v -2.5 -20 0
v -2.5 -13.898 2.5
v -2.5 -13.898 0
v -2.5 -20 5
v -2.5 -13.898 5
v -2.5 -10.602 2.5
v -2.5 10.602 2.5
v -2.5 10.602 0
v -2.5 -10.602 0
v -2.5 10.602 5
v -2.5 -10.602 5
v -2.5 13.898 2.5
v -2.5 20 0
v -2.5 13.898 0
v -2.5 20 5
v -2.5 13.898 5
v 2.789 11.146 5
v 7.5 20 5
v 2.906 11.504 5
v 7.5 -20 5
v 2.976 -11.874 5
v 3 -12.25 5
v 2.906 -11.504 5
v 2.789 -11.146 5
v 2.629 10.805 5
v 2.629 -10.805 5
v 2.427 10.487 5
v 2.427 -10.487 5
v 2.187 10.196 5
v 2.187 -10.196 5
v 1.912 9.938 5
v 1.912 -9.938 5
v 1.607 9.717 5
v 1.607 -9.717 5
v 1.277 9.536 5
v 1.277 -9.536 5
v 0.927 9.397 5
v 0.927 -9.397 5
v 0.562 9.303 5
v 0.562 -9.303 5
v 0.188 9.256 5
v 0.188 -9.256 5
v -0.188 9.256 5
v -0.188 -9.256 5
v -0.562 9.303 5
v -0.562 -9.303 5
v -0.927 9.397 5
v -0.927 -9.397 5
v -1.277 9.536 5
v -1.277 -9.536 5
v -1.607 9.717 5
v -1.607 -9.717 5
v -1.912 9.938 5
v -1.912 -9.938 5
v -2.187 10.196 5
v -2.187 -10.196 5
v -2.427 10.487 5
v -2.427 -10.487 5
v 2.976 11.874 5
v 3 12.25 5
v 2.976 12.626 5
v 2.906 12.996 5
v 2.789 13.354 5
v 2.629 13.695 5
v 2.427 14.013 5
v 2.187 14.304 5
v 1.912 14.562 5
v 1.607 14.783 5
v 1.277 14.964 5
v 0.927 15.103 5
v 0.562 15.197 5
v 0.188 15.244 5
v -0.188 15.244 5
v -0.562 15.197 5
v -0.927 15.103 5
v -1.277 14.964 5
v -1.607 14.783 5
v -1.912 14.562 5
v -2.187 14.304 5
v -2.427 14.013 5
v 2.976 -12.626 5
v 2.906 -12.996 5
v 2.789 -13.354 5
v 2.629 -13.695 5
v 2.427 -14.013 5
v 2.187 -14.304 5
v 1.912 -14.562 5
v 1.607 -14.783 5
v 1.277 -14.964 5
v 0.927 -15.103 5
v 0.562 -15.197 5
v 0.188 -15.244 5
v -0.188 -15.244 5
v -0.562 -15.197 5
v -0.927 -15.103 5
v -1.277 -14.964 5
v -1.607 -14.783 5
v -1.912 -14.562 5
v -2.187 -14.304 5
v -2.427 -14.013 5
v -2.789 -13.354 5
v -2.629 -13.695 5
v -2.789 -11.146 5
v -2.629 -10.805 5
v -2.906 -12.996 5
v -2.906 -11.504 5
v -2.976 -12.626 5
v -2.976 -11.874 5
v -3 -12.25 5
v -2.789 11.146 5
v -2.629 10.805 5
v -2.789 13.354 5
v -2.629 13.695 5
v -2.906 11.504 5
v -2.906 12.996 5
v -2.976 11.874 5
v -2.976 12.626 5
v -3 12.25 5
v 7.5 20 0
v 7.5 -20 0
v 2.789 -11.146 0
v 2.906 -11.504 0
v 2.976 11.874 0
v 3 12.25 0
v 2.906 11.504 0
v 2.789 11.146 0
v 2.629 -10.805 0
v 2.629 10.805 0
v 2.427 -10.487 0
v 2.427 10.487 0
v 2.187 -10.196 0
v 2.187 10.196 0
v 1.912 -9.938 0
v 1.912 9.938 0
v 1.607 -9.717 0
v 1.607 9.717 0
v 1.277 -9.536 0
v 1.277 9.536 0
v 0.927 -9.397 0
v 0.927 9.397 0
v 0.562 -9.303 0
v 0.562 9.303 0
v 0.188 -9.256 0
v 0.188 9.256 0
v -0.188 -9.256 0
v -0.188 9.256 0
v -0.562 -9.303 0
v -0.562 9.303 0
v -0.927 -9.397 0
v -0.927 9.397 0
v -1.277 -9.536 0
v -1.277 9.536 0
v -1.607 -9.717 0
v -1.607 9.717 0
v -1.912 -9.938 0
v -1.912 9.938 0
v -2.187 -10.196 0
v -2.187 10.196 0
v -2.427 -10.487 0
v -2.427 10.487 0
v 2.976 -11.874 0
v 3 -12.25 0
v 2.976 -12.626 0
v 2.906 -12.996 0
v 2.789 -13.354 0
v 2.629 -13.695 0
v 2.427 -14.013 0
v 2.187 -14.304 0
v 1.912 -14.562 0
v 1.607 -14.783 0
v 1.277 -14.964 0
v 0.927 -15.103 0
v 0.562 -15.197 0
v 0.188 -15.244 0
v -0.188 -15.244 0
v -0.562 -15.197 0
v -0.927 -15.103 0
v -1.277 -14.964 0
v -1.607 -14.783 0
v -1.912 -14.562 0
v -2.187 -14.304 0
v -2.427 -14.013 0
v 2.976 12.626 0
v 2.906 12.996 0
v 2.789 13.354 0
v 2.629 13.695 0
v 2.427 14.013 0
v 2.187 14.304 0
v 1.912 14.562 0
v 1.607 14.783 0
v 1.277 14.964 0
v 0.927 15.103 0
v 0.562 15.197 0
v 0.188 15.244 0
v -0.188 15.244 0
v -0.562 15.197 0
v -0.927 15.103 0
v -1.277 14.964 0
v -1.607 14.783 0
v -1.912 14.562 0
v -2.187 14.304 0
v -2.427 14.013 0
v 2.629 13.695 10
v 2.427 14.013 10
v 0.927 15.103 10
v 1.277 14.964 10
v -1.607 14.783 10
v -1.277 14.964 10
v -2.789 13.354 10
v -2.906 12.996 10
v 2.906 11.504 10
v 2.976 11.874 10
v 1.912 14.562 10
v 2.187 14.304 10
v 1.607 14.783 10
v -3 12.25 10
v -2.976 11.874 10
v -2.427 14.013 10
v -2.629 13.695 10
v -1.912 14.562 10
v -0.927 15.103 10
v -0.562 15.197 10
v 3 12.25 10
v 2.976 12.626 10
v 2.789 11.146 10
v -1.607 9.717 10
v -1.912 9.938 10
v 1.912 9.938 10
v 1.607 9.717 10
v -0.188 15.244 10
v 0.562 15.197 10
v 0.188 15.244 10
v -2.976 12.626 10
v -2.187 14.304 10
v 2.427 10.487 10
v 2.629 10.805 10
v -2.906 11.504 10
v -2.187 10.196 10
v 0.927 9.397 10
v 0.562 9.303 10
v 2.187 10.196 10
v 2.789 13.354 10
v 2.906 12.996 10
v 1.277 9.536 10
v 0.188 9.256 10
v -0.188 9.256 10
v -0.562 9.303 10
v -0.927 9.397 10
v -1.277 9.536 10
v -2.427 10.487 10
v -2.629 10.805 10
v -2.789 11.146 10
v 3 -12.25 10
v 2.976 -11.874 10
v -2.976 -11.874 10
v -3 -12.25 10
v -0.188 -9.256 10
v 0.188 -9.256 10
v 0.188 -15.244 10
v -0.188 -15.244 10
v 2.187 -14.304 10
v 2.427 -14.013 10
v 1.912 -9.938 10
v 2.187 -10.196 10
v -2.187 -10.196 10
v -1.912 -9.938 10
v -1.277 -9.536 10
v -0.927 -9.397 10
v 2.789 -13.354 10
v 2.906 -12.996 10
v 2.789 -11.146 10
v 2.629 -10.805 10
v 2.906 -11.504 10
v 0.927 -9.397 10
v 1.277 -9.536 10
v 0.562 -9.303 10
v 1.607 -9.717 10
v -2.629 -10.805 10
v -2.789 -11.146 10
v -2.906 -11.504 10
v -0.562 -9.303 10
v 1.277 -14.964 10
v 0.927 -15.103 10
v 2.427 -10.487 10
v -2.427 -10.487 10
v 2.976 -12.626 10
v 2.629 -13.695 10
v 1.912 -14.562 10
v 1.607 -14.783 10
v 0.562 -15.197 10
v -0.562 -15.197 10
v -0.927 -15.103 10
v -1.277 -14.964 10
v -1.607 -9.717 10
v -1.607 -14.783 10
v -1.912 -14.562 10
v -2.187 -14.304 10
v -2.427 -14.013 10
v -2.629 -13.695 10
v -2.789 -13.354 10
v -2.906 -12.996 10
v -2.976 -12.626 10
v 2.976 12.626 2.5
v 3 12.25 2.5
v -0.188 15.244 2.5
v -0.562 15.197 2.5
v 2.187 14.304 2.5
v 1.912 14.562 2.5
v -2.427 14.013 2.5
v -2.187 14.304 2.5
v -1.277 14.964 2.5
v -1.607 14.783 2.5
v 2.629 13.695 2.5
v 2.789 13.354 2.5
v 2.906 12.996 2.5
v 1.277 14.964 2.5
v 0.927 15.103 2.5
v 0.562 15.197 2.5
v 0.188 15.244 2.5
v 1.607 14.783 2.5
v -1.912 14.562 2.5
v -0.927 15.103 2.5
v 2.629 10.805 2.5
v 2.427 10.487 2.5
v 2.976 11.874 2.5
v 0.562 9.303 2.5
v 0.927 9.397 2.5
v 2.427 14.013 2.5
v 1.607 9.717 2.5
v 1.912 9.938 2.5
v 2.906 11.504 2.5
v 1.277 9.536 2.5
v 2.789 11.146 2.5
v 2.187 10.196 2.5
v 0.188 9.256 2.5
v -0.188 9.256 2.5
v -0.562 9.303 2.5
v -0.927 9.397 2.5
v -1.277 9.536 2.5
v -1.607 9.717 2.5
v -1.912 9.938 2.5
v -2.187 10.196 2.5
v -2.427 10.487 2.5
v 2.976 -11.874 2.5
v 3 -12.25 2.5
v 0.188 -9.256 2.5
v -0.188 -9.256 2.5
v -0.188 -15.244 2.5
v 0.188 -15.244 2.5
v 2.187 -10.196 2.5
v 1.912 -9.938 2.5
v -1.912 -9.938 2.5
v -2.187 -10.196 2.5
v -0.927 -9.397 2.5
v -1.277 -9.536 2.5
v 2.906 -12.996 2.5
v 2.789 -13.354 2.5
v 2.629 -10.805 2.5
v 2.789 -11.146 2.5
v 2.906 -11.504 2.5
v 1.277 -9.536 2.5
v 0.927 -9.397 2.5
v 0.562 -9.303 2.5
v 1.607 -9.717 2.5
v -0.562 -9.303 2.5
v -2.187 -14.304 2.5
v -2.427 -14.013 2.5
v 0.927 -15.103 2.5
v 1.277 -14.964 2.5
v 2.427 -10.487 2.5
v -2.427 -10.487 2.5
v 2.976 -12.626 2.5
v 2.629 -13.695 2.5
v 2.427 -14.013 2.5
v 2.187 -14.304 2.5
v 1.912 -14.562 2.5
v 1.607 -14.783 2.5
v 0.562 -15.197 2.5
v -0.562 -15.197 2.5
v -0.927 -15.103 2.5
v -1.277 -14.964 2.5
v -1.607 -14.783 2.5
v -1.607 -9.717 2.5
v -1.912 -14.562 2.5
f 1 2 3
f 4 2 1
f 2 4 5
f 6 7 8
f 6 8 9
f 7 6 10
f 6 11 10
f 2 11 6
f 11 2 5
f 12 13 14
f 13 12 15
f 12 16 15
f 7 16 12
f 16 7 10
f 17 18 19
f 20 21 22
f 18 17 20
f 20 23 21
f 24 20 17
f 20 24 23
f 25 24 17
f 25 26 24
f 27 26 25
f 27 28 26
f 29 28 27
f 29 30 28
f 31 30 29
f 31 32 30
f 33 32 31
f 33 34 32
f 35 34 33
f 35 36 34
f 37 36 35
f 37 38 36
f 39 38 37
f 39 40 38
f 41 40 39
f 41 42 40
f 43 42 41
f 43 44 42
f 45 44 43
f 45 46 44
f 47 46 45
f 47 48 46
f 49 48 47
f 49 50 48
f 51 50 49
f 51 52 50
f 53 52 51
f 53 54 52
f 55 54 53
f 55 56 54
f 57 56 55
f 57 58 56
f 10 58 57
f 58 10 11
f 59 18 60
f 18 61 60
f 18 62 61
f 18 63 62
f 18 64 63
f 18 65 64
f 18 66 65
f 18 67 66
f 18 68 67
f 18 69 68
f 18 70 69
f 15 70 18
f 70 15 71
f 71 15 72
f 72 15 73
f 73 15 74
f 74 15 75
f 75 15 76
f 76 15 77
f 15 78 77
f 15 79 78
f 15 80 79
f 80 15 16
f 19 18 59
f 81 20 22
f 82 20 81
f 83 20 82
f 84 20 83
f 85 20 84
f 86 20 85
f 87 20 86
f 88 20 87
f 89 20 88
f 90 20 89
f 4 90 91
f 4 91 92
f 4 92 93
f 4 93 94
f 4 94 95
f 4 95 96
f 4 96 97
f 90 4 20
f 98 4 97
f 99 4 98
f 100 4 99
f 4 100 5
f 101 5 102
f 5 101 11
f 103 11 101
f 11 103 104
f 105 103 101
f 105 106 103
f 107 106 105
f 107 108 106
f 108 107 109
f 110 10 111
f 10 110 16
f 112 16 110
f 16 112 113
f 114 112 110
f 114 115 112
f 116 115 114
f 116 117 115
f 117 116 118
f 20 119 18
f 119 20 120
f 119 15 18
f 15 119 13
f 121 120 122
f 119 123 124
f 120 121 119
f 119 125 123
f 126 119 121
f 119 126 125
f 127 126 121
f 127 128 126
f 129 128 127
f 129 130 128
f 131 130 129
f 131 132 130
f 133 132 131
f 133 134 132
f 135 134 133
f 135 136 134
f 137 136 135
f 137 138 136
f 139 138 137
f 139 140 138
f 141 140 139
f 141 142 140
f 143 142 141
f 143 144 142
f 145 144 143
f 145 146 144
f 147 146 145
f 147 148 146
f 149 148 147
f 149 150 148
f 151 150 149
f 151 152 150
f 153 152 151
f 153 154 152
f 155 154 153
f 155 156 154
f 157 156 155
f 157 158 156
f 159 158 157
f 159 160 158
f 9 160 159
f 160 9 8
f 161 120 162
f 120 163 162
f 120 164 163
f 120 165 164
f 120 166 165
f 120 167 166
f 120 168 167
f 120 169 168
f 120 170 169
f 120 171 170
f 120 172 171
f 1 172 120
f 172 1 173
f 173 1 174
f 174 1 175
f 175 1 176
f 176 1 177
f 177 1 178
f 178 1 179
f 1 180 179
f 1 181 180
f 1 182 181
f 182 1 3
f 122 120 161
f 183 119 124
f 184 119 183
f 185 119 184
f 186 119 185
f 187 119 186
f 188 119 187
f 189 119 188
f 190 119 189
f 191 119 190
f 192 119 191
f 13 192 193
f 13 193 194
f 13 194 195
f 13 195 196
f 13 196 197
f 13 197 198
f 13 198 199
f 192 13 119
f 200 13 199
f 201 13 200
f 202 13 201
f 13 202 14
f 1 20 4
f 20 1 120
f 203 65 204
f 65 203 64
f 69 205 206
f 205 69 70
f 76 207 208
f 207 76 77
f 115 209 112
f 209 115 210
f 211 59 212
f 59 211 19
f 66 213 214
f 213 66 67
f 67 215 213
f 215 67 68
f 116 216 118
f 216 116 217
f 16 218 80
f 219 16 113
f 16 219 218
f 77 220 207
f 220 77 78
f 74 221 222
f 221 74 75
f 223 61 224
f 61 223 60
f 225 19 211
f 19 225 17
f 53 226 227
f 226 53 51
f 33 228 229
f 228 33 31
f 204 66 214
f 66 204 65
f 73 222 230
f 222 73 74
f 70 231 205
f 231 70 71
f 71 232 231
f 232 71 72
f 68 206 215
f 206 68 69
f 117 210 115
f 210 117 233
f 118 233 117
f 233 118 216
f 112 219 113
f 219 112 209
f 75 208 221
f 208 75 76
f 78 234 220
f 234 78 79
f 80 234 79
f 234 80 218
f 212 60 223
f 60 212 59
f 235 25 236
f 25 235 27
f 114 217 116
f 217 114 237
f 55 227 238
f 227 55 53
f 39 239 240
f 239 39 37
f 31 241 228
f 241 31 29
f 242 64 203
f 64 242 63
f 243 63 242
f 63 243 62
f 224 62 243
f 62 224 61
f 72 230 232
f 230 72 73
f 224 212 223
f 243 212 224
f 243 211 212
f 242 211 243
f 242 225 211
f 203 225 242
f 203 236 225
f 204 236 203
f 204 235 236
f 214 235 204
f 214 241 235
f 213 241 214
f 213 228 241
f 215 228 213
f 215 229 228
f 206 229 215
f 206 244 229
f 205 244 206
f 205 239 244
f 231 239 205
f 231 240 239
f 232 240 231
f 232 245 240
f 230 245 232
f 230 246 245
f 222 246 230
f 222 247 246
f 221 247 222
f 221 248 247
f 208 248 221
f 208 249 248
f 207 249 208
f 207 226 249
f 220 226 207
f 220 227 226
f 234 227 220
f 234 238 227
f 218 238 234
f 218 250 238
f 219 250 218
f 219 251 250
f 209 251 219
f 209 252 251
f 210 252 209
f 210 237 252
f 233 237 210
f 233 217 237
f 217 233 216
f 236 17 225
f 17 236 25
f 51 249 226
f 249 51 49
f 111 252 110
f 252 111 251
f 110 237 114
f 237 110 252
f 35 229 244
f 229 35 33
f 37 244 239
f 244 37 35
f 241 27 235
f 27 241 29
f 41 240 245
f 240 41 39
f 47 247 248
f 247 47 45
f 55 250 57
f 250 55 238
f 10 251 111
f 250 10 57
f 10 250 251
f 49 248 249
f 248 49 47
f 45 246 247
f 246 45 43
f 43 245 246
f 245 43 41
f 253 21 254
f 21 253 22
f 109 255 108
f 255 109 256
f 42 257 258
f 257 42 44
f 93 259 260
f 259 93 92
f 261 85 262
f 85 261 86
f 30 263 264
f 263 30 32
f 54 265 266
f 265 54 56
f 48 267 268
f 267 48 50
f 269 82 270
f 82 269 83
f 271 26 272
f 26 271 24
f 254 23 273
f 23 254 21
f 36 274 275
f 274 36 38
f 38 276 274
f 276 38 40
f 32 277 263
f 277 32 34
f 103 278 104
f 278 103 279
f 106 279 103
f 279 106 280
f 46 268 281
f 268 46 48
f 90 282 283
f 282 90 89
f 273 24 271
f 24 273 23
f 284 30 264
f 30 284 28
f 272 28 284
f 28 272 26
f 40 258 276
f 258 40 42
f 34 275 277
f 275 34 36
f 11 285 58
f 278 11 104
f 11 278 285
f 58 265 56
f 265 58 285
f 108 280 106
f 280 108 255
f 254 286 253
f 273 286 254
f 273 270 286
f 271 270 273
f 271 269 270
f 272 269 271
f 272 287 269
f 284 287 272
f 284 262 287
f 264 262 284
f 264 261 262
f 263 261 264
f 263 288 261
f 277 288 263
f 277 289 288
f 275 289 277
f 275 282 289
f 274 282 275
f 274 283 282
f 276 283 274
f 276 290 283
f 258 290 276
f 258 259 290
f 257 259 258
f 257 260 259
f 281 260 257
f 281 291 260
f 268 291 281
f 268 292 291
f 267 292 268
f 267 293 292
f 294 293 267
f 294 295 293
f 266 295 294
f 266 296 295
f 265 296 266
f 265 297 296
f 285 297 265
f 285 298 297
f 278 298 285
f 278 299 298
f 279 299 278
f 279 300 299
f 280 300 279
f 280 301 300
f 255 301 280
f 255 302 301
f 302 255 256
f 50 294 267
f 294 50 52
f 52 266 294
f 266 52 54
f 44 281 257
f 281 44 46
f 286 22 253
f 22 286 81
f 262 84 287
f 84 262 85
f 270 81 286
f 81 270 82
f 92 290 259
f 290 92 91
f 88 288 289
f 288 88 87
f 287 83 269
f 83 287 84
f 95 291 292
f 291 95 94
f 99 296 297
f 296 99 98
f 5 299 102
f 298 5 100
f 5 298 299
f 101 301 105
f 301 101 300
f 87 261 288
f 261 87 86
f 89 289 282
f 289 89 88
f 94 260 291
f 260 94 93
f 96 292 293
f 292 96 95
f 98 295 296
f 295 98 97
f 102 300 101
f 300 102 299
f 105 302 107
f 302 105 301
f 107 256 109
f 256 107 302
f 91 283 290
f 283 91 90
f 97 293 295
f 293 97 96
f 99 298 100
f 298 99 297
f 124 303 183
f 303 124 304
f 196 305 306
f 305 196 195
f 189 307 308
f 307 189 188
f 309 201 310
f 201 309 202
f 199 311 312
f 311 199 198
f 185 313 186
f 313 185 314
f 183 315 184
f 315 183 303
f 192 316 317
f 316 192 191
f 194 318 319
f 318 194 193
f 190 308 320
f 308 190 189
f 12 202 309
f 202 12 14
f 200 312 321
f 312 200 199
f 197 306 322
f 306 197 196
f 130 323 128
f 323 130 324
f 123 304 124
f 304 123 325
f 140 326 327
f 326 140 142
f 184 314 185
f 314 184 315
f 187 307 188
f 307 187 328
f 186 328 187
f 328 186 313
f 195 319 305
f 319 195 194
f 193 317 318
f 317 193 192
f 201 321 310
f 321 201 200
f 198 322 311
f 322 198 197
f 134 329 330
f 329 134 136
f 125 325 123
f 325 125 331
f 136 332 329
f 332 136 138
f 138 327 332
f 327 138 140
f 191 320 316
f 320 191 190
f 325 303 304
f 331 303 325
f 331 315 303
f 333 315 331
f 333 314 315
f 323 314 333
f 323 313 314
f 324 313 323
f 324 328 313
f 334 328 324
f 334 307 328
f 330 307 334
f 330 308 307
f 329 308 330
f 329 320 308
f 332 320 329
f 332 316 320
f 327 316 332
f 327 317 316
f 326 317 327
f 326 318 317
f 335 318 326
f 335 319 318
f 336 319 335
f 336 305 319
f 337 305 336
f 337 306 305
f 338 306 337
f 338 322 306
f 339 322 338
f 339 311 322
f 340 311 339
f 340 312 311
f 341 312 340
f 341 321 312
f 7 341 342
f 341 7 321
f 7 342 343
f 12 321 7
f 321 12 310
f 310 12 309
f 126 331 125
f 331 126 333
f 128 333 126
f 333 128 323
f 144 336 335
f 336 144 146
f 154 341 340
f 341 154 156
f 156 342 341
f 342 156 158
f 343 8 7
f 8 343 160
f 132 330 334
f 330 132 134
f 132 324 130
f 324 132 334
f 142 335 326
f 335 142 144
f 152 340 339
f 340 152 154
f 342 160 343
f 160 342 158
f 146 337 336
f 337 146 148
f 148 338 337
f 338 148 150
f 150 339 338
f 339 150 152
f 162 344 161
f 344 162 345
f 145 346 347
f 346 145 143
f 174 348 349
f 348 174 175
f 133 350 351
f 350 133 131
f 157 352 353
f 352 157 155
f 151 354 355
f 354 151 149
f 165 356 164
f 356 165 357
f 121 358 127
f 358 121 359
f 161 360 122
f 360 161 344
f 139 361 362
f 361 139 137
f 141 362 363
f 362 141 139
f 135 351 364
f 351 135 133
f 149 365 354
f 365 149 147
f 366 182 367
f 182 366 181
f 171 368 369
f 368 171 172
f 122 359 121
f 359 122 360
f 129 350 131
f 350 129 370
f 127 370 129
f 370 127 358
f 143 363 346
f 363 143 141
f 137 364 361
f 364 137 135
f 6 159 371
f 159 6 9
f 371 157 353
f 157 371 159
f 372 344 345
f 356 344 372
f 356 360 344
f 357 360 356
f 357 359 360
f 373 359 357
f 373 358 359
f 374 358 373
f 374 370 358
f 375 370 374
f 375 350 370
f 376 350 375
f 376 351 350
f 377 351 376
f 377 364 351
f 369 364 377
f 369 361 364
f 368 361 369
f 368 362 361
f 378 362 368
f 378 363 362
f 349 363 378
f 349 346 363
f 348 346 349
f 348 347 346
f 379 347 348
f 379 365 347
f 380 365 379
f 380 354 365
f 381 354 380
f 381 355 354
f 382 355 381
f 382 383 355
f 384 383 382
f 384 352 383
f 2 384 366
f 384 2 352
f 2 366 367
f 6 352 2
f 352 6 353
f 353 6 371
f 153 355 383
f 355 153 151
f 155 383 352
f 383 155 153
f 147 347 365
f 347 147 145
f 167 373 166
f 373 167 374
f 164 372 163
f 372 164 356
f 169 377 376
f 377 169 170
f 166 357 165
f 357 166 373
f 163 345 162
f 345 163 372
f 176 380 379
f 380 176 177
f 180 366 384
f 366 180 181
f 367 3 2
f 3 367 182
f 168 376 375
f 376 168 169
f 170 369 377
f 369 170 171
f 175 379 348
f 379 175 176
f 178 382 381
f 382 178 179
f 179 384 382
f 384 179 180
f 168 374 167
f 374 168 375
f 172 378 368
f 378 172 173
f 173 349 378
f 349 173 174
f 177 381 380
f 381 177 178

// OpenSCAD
extra_height = 2.5; //mm
post_diameter = 6; //mm
post_spacing = 24.5; //mm
new_post_height = 5; //mm
block_width = 10;
block_length = 40;
block_height = 5;

$fn = 50;

difference(){
union(){
translate([0.25*block_width,0,block_height/2]) cube([block_width,block_length,block_height],center=true);
translate([0,post_spacing/2,block_height]) cylinder(new_post_height,d=post_diameter);
translate([0,-post_spacing/2,block_height]) cylinder(new_post_height,d=post_diameter);
}
translate([0,post_spacing/2,block_height-extra_height-new_post_height]) cylinder(new_post_height,d=post_diameter);
translate([0,-post_spacing/2,block_height-extra_height-new_post_height]) cylinder(new_post_height,d=post_diameter);
}
